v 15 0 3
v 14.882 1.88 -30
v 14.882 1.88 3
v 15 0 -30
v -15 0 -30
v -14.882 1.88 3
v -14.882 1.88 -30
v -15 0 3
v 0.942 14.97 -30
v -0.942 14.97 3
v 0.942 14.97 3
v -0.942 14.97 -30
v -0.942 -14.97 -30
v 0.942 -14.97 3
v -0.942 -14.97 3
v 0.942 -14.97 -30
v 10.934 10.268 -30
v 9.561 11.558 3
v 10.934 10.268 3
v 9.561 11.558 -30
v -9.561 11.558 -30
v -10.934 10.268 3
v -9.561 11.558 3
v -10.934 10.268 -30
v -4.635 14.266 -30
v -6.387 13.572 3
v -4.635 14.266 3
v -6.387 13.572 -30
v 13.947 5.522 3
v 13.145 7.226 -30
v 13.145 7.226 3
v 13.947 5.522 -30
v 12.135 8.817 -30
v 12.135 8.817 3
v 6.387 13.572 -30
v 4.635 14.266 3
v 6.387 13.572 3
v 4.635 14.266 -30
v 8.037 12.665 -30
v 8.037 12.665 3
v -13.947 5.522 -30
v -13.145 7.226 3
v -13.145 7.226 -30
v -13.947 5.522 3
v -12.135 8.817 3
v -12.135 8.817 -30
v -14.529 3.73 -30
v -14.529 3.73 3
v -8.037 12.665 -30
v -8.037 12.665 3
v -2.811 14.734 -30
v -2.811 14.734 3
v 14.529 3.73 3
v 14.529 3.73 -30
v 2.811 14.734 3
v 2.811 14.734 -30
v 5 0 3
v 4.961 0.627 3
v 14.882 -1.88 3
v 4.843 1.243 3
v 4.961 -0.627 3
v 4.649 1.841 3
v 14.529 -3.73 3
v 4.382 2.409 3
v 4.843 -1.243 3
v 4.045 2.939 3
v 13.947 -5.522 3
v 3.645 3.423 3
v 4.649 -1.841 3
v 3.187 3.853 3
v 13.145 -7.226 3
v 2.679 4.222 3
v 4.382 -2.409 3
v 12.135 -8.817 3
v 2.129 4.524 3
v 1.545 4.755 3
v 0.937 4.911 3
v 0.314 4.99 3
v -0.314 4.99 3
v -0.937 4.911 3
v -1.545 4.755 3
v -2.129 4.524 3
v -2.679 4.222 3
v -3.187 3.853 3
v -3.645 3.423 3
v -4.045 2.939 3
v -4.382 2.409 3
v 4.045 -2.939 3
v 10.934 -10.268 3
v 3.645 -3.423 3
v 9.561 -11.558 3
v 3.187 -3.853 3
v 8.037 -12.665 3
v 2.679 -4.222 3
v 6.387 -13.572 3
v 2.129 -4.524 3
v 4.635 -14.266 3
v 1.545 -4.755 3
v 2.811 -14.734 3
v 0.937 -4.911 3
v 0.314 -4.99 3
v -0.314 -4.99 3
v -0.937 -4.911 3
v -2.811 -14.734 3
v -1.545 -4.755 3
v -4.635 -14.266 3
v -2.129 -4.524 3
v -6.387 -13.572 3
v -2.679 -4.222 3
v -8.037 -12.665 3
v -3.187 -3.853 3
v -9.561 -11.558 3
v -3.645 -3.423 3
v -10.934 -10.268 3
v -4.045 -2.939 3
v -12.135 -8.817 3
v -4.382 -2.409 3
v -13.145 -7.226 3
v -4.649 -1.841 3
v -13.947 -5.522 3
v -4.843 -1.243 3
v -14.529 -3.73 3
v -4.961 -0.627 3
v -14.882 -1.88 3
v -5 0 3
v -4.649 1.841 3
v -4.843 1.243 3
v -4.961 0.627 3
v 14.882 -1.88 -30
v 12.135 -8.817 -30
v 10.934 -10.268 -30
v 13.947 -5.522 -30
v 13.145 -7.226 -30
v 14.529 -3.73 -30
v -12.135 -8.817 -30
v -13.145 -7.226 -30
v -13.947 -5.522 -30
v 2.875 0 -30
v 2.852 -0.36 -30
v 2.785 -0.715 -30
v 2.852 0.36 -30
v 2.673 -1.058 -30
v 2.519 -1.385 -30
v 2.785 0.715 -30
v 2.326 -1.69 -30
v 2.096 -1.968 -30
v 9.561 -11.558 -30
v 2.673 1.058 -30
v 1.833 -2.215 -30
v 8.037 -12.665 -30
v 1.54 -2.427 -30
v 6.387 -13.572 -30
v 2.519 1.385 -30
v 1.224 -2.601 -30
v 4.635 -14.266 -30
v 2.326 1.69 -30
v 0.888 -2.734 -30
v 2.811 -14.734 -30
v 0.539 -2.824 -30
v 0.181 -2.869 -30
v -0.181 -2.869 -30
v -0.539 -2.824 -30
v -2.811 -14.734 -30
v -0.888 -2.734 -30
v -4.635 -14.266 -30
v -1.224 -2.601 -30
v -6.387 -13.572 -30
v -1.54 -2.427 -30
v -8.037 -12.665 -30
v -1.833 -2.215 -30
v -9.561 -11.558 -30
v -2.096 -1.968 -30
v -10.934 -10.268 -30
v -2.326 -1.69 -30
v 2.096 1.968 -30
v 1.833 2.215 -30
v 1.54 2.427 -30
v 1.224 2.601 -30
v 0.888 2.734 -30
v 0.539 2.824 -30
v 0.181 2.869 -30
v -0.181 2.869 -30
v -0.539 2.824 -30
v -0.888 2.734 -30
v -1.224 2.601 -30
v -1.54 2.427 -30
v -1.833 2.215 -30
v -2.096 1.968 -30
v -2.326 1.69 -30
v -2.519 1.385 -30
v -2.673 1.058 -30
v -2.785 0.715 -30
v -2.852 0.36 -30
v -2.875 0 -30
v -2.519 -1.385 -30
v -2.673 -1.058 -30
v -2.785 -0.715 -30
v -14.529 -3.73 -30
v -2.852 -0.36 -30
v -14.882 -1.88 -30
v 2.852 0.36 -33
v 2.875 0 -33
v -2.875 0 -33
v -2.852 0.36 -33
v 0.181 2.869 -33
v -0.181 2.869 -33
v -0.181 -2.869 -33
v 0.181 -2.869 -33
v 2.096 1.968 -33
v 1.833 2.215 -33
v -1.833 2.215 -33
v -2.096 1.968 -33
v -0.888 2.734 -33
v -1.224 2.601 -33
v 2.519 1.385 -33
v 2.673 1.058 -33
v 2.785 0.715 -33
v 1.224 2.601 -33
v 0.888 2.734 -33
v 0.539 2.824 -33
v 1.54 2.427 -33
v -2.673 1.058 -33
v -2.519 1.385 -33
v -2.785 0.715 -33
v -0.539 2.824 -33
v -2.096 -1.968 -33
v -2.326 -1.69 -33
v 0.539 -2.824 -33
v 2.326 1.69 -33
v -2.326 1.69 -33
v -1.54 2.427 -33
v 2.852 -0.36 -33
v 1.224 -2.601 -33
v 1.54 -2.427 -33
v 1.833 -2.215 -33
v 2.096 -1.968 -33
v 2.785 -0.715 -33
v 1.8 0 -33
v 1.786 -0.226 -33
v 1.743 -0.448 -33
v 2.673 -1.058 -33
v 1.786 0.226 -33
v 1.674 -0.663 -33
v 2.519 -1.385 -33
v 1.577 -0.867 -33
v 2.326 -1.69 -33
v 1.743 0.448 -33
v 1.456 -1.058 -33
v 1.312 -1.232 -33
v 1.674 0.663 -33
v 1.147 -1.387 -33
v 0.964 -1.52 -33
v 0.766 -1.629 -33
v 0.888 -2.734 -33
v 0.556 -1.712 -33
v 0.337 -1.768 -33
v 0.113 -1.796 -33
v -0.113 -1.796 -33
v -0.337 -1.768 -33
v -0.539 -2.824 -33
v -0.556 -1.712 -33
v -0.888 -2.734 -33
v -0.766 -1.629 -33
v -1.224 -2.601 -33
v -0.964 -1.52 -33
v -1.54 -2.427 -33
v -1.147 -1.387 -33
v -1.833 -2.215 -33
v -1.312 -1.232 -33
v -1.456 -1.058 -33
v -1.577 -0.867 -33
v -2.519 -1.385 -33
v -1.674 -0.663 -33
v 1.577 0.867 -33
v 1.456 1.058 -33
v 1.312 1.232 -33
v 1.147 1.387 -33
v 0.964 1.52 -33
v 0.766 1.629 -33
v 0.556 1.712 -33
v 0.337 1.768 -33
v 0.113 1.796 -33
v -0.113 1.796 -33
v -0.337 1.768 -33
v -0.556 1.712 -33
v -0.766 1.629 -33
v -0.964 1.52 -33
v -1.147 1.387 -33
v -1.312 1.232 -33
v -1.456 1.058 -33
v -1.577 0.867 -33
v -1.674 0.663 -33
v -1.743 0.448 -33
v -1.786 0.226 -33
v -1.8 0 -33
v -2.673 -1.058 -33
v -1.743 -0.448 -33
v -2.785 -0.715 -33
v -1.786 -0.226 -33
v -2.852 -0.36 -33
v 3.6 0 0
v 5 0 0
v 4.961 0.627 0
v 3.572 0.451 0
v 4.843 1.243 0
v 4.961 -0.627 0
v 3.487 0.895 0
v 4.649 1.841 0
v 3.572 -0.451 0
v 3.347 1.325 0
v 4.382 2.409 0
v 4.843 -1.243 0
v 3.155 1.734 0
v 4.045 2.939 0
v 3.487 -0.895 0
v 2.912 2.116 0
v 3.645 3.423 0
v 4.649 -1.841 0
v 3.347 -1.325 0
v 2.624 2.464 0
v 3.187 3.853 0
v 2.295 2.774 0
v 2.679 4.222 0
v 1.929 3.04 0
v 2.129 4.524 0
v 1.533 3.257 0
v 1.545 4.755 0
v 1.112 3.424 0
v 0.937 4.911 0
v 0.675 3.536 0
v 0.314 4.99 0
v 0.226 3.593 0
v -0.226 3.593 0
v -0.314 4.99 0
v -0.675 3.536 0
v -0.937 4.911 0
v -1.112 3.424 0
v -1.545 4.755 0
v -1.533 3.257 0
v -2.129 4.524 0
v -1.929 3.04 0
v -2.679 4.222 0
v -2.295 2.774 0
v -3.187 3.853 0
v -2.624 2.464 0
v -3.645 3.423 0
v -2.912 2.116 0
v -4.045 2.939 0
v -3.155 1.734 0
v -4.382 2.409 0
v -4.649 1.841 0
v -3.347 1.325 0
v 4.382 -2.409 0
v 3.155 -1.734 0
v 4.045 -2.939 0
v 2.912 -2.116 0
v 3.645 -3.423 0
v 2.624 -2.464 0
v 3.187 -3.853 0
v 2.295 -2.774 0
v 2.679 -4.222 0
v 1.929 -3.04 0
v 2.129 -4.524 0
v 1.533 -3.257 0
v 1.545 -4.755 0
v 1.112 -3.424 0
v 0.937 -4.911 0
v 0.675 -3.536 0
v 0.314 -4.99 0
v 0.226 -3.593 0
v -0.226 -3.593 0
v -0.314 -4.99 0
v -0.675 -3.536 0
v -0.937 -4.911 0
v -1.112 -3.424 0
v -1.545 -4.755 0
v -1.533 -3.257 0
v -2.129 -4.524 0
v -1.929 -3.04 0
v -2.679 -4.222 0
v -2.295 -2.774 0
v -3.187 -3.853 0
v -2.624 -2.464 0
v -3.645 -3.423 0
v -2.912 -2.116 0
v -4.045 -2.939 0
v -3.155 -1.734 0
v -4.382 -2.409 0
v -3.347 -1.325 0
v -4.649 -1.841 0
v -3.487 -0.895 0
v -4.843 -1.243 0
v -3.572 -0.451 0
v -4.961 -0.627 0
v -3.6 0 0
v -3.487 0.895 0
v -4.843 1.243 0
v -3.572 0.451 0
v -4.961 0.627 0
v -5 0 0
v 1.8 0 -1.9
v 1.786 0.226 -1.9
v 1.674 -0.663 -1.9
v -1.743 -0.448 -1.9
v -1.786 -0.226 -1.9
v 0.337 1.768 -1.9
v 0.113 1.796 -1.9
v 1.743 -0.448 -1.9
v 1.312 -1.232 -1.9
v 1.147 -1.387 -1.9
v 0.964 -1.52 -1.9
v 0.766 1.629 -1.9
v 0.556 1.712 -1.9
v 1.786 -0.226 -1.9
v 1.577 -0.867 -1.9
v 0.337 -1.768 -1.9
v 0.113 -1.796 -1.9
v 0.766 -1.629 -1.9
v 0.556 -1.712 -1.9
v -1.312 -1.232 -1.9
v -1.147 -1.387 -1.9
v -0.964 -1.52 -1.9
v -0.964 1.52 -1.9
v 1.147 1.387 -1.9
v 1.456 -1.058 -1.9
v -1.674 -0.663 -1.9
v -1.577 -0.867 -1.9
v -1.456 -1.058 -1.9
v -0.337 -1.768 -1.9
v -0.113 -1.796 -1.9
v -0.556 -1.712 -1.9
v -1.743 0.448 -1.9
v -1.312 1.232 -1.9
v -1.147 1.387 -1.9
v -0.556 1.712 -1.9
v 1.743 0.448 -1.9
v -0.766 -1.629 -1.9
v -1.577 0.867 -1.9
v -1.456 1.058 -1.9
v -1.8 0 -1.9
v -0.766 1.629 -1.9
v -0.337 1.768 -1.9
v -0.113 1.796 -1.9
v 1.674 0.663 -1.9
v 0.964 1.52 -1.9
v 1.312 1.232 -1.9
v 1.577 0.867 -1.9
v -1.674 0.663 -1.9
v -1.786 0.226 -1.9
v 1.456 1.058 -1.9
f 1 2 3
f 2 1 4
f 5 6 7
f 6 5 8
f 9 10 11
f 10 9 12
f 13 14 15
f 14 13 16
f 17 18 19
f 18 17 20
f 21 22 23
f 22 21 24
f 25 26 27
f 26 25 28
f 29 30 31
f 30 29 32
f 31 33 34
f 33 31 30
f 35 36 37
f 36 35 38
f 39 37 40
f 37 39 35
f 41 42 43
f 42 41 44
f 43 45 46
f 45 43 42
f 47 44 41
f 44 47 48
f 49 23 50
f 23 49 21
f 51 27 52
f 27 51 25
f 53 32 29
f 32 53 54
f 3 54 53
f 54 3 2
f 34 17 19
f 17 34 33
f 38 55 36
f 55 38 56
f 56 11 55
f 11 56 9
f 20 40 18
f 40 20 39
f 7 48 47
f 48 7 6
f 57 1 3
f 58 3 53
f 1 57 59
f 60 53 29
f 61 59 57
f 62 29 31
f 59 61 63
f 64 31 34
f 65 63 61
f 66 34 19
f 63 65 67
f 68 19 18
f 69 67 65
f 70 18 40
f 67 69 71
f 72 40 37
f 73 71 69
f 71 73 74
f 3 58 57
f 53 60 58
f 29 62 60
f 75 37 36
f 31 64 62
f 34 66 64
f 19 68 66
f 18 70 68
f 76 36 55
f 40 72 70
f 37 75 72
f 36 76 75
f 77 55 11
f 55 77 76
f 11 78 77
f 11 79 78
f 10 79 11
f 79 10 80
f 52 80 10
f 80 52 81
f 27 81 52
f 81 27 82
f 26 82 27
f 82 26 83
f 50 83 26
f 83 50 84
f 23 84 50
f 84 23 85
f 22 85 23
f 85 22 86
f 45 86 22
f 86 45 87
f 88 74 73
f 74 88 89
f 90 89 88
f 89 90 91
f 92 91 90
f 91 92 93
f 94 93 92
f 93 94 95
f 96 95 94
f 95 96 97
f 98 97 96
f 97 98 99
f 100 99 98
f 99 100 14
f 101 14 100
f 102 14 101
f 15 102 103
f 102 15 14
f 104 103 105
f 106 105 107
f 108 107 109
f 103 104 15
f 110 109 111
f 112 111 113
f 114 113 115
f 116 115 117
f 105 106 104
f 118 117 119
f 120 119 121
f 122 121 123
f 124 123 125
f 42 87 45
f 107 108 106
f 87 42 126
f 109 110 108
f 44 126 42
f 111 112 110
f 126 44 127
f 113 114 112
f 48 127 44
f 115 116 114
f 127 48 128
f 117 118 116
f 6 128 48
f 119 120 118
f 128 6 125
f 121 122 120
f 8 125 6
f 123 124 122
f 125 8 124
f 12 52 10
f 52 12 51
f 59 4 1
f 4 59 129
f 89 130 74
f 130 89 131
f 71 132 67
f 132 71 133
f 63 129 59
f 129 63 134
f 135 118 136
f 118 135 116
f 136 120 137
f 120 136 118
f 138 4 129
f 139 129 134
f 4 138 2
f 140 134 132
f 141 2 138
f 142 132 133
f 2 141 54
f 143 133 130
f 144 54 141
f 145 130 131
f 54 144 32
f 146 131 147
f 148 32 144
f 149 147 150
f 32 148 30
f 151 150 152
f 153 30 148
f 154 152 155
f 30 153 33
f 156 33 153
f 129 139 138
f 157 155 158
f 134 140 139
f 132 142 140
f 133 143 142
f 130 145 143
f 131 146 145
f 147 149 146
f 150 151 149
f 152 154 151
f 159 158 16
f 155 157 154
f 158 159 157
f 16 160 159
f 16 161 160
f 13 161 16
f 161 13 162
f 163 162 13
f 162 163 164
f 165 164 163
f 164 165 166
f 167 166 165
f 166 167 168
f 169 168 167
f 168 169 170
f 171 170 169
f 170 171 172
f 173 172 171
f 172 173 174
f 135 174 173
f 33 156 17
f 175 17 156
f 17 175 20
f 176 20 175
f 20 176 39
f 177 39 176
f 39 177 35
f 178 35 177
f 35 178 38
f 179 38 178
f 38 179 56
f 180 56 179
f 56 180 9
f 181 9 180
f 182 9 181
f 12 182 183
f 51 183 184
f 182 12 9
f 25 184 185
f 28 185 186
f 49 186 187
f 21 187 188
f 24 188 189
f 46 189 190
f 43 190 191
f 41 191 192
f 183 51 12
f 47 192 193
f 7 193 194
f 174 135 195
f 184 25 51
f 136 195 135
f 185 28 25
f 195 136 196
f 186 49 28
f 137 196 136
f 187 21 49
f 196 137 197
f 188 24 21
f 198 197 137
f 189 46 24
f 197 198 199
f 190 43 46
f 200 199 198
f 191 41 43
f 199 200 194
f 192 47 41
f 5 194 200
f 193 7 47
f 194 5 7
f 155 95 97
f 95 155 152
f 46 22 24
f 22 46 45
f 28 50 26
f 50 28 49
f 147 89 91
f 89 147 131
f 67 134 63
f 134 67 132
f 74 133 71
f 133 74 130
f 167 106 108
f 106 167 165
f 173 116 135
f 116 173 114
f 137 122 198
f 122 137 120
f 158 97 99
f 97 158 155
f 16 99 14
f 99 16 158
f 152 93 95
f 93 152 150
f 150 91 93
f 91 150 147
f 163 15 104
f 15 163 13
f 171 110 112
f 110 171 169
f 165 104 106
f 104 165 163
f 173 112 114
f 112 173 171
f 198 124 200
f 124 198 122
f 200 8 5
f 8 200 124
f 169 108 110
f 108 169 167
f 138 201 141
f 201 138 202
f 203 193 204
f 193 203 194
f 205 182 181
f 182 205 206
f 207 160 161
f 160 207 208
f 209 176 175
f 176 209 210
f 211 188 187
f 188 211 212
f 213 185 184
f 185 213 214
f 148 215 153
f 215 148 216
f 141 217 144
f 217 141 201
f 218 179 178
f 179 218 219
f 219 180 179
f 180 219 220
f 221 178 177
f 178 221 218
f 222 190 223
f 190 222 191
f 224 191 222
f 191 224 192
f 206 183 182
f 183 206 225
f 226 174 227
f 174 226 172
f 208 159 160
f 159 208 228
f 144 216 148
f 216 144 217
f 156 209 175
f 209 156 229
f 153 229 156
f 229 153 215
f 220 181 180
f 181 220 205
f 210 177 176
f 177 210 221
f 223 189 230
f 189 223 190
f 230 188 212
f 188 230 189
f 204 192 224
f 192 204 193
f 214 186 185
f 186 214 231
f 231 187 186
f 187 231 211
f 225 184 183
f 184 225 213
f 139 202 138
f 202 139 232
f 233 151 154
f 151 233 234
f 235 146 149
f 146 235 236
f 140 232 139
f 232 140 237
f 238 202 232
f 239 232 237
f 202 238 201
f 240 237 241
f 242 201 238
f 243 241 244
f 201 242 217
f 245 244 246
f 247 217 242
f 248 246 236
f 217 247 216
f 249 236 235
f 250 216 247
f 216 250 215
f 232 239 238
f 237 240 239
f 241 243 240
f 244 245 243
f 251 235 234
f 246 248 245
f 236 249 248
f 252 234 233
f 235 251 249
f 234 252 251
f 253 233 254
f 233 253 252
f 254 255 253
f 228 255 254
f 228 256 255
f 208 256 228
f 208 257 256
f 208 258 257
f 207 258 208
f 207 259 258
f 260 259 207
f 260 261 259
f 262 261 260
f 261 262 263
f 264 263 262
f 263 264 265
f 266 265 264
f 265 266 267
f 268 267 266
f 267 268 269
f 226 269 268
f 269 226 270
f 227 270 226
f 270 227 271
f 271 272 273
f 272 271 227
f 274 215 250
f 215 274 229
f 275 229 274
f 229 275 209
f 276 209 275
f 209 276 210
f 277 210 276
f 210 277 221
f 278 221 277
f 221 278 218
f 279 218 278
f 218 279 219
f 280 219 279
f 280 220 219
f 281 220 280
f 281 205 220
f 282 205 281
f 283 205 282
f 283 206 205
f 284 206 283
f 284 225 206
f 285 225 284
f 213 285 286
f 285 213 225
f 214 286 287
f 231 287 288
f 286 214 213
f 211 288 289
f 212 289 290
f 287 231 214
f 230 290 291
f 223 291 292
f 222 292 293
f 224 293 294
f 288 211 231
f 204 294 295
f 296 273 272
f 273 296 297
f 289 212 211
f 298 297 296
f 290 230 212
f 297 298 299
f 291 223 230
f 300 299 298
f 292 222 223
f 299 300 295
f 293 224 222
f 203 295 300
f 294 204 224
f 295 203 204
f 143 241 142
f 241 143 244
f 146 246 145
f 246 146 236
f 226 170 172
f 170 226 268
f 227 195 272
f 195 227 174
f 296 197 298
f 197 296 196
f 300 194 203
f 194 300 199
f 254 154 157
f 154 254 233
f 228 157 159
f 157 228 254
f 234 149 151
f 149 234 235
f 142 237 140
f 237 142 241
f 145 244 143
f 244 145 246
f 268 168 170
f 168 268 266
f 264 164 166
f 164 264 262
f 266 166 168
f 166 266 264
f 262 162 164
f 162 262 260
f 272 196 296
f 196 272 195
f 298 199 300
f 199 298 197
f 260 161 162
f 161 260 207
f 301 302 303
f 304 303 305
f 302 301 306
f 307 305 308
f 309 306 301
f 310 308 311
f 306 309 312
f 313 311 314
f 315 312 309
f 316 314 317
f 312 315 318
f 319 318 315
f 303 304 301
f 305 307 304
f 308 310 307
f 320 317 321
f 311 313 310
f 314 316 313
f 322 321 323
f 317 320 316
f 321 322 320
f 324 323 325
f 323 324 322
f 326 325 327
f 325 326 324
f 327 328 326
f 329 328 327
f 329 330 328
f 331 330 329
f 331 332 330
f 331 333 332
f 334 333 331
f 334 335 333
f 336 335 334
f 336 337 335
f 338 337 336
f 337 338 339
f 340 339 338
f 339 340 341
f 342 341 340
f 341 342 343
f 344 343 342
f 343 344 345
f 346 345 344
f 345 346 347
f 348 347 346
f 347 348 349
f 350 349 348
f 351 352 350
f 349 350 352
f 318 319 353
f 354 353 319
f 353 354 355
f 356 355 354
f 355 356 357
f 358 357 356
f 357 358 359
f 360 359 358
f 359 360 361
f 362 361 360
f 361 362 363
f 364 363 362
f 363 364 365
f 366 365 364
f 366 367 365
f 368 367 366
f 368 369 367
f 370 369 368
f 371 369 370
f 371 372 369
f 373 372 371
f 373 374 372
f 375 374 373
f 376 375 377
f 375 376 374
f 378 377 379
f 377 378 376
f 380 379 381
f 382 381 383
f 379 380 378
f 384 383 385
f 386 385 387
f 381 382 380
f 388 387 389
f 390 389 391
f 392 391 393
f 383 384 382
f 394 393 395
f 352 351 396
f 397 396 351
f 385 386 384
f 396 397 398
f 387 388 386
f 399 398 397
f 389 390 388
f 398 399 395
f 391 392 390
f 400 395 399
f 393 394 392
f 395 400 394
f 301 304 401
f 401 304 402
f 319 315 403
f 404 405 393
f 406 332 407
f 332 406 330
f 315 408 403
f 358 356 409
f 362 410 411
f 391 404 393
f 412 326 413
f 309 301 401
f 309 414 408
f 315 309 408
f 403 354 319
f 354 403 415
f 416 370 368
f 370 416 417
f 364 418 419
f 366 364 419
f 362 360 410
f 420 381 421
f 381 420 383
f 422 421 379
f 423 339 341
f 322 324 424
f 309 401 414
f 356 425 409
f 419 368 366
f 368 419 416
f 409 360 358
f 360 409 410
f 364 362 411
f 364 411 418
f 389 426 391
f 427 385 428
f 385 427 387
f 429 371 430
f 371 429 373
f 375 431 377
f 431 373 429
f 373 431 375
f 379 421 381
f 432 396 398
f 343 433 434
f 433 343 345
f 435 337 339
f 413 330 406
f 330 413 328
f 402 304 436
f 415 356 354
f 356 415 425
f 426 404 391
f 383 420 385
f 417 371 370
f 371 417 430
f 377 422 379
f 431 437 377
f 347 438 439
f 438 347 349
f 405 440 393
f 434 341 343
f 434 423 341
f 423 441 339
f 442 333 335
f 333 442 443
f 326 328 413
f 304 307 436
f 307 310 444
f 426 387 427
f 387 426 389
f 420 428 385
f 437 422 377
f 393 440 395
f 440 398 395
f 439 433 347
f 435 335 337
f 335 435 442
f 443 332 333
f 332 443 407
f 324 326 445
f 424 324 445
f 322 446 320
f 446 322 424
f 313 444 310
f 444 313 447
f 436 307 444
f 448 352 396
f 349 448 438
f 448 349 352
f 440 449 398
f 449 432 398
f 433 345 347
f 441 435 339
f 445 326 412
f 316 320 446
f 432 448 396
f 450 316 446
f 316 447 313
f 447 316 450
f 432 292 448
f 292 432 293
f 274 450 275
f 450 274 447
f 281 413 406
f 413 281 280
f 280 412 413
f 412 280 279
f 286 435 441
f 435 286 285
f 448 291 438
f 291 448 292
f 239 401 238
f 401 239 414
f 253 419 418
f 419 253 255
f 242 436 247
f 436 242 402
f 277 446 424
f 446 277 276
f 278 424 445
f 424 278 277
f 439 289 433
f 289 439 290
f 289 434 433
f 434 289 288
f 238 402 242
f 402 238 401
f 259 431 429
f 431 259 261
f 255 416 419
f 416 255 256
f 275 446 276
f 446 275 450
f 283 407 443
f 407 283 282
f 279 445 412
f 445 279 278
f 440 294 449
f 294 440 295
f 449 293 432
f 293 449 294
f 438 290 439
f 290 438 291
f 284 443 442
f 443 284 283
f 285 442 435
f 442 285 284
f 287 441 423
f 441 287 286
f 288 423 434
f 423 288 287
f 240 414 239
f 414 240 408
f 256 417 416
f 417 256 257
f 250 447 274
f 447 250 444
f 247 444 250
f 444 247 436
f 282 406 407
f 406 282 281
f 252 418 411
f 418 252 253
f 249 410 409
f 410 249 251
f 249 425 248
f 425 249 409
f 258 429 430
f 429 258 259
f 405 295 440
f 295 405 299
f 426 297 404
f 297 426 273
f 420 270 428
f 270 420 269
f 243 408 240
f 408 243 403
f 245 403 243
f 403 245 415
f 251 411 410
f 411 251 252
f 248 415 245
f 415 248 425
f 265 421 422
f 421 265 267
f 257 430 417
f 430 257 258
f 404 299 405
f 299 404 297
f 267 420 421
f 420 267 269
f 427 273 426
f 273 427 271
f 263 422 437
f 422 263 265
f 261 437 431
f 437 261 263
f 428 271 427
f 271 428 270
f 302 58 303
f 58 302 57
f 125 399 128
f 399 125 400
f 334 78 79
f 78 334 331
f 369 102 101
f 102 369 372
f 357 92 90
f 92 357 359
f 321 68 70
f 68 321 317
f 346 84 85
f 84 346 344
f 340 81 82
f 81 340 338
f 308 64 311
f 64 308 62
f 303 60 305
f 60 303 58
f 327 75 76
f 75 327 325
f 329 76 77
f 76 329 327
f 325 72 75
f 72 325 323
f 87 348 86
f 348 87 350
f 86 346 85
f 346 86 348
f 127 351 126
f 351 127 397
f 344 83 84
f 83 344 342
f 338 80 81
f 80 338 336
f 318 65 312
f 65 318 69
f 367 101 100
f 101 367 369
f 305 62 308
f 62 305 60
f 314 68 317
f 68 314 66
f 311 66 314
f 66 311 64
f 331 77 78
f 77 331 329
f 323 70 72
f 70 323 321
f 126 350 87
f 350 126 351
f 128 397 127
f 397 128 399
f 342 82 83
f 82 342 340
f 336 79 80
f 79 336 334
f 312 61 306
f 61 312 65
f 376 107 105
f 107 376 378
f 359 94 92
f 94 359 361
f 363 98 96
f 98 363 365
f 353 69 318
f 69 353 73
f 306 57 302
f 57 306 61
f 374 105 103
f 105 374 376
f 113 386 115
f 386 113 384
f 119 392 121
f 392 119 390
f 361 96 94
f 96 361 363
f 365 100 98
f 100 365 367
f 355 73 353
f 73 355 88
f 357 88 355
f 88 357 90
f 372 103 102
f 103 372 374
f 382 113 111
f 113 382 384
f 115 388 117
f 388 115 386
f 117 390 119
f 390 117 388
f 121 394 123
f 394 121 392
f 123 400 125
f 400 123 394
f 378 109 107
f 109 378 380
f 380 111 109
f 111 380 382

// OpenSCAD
$fn = 50;


difference() {
	union() {
		translate(v = [0, 0, -30.0000000000]) {
			cylinder(h = 33, r = 15.0000000000);
		}
		#translate(v = [0, 0, -33.0000000000]) {
			cylinder(h = 33, r = 2.8750000000);
		}
	}
	union() {
		translate(v = [0, 0, 0]) {
			rotate(a = [0, 0, 0]) {
				difference() {
					union() {
						translate(v = [0, 0, -33.0000000000]) {
							cylinder(h = 33, r = 1.5000000000);
						}
						translate(v = [0, 0, -1.9000000000]) {
							cylinder(h = 1.9000000000, r1 = 1.8000000000, r2 = 3.6000000000);
						}
						translate(v = [0, 0, -33.0000000000]) {
							cylinder(h = 33, r = 1.8000000000);
						}
						translate(v = [0, 0, -33.0000000000]) {
							cylinder(h = 33, r = 1.5000000000);
						}
					}
					union();
				}
			}
		}
		#cylinder(h = 3, r = 5.0000000000);
	}
}
